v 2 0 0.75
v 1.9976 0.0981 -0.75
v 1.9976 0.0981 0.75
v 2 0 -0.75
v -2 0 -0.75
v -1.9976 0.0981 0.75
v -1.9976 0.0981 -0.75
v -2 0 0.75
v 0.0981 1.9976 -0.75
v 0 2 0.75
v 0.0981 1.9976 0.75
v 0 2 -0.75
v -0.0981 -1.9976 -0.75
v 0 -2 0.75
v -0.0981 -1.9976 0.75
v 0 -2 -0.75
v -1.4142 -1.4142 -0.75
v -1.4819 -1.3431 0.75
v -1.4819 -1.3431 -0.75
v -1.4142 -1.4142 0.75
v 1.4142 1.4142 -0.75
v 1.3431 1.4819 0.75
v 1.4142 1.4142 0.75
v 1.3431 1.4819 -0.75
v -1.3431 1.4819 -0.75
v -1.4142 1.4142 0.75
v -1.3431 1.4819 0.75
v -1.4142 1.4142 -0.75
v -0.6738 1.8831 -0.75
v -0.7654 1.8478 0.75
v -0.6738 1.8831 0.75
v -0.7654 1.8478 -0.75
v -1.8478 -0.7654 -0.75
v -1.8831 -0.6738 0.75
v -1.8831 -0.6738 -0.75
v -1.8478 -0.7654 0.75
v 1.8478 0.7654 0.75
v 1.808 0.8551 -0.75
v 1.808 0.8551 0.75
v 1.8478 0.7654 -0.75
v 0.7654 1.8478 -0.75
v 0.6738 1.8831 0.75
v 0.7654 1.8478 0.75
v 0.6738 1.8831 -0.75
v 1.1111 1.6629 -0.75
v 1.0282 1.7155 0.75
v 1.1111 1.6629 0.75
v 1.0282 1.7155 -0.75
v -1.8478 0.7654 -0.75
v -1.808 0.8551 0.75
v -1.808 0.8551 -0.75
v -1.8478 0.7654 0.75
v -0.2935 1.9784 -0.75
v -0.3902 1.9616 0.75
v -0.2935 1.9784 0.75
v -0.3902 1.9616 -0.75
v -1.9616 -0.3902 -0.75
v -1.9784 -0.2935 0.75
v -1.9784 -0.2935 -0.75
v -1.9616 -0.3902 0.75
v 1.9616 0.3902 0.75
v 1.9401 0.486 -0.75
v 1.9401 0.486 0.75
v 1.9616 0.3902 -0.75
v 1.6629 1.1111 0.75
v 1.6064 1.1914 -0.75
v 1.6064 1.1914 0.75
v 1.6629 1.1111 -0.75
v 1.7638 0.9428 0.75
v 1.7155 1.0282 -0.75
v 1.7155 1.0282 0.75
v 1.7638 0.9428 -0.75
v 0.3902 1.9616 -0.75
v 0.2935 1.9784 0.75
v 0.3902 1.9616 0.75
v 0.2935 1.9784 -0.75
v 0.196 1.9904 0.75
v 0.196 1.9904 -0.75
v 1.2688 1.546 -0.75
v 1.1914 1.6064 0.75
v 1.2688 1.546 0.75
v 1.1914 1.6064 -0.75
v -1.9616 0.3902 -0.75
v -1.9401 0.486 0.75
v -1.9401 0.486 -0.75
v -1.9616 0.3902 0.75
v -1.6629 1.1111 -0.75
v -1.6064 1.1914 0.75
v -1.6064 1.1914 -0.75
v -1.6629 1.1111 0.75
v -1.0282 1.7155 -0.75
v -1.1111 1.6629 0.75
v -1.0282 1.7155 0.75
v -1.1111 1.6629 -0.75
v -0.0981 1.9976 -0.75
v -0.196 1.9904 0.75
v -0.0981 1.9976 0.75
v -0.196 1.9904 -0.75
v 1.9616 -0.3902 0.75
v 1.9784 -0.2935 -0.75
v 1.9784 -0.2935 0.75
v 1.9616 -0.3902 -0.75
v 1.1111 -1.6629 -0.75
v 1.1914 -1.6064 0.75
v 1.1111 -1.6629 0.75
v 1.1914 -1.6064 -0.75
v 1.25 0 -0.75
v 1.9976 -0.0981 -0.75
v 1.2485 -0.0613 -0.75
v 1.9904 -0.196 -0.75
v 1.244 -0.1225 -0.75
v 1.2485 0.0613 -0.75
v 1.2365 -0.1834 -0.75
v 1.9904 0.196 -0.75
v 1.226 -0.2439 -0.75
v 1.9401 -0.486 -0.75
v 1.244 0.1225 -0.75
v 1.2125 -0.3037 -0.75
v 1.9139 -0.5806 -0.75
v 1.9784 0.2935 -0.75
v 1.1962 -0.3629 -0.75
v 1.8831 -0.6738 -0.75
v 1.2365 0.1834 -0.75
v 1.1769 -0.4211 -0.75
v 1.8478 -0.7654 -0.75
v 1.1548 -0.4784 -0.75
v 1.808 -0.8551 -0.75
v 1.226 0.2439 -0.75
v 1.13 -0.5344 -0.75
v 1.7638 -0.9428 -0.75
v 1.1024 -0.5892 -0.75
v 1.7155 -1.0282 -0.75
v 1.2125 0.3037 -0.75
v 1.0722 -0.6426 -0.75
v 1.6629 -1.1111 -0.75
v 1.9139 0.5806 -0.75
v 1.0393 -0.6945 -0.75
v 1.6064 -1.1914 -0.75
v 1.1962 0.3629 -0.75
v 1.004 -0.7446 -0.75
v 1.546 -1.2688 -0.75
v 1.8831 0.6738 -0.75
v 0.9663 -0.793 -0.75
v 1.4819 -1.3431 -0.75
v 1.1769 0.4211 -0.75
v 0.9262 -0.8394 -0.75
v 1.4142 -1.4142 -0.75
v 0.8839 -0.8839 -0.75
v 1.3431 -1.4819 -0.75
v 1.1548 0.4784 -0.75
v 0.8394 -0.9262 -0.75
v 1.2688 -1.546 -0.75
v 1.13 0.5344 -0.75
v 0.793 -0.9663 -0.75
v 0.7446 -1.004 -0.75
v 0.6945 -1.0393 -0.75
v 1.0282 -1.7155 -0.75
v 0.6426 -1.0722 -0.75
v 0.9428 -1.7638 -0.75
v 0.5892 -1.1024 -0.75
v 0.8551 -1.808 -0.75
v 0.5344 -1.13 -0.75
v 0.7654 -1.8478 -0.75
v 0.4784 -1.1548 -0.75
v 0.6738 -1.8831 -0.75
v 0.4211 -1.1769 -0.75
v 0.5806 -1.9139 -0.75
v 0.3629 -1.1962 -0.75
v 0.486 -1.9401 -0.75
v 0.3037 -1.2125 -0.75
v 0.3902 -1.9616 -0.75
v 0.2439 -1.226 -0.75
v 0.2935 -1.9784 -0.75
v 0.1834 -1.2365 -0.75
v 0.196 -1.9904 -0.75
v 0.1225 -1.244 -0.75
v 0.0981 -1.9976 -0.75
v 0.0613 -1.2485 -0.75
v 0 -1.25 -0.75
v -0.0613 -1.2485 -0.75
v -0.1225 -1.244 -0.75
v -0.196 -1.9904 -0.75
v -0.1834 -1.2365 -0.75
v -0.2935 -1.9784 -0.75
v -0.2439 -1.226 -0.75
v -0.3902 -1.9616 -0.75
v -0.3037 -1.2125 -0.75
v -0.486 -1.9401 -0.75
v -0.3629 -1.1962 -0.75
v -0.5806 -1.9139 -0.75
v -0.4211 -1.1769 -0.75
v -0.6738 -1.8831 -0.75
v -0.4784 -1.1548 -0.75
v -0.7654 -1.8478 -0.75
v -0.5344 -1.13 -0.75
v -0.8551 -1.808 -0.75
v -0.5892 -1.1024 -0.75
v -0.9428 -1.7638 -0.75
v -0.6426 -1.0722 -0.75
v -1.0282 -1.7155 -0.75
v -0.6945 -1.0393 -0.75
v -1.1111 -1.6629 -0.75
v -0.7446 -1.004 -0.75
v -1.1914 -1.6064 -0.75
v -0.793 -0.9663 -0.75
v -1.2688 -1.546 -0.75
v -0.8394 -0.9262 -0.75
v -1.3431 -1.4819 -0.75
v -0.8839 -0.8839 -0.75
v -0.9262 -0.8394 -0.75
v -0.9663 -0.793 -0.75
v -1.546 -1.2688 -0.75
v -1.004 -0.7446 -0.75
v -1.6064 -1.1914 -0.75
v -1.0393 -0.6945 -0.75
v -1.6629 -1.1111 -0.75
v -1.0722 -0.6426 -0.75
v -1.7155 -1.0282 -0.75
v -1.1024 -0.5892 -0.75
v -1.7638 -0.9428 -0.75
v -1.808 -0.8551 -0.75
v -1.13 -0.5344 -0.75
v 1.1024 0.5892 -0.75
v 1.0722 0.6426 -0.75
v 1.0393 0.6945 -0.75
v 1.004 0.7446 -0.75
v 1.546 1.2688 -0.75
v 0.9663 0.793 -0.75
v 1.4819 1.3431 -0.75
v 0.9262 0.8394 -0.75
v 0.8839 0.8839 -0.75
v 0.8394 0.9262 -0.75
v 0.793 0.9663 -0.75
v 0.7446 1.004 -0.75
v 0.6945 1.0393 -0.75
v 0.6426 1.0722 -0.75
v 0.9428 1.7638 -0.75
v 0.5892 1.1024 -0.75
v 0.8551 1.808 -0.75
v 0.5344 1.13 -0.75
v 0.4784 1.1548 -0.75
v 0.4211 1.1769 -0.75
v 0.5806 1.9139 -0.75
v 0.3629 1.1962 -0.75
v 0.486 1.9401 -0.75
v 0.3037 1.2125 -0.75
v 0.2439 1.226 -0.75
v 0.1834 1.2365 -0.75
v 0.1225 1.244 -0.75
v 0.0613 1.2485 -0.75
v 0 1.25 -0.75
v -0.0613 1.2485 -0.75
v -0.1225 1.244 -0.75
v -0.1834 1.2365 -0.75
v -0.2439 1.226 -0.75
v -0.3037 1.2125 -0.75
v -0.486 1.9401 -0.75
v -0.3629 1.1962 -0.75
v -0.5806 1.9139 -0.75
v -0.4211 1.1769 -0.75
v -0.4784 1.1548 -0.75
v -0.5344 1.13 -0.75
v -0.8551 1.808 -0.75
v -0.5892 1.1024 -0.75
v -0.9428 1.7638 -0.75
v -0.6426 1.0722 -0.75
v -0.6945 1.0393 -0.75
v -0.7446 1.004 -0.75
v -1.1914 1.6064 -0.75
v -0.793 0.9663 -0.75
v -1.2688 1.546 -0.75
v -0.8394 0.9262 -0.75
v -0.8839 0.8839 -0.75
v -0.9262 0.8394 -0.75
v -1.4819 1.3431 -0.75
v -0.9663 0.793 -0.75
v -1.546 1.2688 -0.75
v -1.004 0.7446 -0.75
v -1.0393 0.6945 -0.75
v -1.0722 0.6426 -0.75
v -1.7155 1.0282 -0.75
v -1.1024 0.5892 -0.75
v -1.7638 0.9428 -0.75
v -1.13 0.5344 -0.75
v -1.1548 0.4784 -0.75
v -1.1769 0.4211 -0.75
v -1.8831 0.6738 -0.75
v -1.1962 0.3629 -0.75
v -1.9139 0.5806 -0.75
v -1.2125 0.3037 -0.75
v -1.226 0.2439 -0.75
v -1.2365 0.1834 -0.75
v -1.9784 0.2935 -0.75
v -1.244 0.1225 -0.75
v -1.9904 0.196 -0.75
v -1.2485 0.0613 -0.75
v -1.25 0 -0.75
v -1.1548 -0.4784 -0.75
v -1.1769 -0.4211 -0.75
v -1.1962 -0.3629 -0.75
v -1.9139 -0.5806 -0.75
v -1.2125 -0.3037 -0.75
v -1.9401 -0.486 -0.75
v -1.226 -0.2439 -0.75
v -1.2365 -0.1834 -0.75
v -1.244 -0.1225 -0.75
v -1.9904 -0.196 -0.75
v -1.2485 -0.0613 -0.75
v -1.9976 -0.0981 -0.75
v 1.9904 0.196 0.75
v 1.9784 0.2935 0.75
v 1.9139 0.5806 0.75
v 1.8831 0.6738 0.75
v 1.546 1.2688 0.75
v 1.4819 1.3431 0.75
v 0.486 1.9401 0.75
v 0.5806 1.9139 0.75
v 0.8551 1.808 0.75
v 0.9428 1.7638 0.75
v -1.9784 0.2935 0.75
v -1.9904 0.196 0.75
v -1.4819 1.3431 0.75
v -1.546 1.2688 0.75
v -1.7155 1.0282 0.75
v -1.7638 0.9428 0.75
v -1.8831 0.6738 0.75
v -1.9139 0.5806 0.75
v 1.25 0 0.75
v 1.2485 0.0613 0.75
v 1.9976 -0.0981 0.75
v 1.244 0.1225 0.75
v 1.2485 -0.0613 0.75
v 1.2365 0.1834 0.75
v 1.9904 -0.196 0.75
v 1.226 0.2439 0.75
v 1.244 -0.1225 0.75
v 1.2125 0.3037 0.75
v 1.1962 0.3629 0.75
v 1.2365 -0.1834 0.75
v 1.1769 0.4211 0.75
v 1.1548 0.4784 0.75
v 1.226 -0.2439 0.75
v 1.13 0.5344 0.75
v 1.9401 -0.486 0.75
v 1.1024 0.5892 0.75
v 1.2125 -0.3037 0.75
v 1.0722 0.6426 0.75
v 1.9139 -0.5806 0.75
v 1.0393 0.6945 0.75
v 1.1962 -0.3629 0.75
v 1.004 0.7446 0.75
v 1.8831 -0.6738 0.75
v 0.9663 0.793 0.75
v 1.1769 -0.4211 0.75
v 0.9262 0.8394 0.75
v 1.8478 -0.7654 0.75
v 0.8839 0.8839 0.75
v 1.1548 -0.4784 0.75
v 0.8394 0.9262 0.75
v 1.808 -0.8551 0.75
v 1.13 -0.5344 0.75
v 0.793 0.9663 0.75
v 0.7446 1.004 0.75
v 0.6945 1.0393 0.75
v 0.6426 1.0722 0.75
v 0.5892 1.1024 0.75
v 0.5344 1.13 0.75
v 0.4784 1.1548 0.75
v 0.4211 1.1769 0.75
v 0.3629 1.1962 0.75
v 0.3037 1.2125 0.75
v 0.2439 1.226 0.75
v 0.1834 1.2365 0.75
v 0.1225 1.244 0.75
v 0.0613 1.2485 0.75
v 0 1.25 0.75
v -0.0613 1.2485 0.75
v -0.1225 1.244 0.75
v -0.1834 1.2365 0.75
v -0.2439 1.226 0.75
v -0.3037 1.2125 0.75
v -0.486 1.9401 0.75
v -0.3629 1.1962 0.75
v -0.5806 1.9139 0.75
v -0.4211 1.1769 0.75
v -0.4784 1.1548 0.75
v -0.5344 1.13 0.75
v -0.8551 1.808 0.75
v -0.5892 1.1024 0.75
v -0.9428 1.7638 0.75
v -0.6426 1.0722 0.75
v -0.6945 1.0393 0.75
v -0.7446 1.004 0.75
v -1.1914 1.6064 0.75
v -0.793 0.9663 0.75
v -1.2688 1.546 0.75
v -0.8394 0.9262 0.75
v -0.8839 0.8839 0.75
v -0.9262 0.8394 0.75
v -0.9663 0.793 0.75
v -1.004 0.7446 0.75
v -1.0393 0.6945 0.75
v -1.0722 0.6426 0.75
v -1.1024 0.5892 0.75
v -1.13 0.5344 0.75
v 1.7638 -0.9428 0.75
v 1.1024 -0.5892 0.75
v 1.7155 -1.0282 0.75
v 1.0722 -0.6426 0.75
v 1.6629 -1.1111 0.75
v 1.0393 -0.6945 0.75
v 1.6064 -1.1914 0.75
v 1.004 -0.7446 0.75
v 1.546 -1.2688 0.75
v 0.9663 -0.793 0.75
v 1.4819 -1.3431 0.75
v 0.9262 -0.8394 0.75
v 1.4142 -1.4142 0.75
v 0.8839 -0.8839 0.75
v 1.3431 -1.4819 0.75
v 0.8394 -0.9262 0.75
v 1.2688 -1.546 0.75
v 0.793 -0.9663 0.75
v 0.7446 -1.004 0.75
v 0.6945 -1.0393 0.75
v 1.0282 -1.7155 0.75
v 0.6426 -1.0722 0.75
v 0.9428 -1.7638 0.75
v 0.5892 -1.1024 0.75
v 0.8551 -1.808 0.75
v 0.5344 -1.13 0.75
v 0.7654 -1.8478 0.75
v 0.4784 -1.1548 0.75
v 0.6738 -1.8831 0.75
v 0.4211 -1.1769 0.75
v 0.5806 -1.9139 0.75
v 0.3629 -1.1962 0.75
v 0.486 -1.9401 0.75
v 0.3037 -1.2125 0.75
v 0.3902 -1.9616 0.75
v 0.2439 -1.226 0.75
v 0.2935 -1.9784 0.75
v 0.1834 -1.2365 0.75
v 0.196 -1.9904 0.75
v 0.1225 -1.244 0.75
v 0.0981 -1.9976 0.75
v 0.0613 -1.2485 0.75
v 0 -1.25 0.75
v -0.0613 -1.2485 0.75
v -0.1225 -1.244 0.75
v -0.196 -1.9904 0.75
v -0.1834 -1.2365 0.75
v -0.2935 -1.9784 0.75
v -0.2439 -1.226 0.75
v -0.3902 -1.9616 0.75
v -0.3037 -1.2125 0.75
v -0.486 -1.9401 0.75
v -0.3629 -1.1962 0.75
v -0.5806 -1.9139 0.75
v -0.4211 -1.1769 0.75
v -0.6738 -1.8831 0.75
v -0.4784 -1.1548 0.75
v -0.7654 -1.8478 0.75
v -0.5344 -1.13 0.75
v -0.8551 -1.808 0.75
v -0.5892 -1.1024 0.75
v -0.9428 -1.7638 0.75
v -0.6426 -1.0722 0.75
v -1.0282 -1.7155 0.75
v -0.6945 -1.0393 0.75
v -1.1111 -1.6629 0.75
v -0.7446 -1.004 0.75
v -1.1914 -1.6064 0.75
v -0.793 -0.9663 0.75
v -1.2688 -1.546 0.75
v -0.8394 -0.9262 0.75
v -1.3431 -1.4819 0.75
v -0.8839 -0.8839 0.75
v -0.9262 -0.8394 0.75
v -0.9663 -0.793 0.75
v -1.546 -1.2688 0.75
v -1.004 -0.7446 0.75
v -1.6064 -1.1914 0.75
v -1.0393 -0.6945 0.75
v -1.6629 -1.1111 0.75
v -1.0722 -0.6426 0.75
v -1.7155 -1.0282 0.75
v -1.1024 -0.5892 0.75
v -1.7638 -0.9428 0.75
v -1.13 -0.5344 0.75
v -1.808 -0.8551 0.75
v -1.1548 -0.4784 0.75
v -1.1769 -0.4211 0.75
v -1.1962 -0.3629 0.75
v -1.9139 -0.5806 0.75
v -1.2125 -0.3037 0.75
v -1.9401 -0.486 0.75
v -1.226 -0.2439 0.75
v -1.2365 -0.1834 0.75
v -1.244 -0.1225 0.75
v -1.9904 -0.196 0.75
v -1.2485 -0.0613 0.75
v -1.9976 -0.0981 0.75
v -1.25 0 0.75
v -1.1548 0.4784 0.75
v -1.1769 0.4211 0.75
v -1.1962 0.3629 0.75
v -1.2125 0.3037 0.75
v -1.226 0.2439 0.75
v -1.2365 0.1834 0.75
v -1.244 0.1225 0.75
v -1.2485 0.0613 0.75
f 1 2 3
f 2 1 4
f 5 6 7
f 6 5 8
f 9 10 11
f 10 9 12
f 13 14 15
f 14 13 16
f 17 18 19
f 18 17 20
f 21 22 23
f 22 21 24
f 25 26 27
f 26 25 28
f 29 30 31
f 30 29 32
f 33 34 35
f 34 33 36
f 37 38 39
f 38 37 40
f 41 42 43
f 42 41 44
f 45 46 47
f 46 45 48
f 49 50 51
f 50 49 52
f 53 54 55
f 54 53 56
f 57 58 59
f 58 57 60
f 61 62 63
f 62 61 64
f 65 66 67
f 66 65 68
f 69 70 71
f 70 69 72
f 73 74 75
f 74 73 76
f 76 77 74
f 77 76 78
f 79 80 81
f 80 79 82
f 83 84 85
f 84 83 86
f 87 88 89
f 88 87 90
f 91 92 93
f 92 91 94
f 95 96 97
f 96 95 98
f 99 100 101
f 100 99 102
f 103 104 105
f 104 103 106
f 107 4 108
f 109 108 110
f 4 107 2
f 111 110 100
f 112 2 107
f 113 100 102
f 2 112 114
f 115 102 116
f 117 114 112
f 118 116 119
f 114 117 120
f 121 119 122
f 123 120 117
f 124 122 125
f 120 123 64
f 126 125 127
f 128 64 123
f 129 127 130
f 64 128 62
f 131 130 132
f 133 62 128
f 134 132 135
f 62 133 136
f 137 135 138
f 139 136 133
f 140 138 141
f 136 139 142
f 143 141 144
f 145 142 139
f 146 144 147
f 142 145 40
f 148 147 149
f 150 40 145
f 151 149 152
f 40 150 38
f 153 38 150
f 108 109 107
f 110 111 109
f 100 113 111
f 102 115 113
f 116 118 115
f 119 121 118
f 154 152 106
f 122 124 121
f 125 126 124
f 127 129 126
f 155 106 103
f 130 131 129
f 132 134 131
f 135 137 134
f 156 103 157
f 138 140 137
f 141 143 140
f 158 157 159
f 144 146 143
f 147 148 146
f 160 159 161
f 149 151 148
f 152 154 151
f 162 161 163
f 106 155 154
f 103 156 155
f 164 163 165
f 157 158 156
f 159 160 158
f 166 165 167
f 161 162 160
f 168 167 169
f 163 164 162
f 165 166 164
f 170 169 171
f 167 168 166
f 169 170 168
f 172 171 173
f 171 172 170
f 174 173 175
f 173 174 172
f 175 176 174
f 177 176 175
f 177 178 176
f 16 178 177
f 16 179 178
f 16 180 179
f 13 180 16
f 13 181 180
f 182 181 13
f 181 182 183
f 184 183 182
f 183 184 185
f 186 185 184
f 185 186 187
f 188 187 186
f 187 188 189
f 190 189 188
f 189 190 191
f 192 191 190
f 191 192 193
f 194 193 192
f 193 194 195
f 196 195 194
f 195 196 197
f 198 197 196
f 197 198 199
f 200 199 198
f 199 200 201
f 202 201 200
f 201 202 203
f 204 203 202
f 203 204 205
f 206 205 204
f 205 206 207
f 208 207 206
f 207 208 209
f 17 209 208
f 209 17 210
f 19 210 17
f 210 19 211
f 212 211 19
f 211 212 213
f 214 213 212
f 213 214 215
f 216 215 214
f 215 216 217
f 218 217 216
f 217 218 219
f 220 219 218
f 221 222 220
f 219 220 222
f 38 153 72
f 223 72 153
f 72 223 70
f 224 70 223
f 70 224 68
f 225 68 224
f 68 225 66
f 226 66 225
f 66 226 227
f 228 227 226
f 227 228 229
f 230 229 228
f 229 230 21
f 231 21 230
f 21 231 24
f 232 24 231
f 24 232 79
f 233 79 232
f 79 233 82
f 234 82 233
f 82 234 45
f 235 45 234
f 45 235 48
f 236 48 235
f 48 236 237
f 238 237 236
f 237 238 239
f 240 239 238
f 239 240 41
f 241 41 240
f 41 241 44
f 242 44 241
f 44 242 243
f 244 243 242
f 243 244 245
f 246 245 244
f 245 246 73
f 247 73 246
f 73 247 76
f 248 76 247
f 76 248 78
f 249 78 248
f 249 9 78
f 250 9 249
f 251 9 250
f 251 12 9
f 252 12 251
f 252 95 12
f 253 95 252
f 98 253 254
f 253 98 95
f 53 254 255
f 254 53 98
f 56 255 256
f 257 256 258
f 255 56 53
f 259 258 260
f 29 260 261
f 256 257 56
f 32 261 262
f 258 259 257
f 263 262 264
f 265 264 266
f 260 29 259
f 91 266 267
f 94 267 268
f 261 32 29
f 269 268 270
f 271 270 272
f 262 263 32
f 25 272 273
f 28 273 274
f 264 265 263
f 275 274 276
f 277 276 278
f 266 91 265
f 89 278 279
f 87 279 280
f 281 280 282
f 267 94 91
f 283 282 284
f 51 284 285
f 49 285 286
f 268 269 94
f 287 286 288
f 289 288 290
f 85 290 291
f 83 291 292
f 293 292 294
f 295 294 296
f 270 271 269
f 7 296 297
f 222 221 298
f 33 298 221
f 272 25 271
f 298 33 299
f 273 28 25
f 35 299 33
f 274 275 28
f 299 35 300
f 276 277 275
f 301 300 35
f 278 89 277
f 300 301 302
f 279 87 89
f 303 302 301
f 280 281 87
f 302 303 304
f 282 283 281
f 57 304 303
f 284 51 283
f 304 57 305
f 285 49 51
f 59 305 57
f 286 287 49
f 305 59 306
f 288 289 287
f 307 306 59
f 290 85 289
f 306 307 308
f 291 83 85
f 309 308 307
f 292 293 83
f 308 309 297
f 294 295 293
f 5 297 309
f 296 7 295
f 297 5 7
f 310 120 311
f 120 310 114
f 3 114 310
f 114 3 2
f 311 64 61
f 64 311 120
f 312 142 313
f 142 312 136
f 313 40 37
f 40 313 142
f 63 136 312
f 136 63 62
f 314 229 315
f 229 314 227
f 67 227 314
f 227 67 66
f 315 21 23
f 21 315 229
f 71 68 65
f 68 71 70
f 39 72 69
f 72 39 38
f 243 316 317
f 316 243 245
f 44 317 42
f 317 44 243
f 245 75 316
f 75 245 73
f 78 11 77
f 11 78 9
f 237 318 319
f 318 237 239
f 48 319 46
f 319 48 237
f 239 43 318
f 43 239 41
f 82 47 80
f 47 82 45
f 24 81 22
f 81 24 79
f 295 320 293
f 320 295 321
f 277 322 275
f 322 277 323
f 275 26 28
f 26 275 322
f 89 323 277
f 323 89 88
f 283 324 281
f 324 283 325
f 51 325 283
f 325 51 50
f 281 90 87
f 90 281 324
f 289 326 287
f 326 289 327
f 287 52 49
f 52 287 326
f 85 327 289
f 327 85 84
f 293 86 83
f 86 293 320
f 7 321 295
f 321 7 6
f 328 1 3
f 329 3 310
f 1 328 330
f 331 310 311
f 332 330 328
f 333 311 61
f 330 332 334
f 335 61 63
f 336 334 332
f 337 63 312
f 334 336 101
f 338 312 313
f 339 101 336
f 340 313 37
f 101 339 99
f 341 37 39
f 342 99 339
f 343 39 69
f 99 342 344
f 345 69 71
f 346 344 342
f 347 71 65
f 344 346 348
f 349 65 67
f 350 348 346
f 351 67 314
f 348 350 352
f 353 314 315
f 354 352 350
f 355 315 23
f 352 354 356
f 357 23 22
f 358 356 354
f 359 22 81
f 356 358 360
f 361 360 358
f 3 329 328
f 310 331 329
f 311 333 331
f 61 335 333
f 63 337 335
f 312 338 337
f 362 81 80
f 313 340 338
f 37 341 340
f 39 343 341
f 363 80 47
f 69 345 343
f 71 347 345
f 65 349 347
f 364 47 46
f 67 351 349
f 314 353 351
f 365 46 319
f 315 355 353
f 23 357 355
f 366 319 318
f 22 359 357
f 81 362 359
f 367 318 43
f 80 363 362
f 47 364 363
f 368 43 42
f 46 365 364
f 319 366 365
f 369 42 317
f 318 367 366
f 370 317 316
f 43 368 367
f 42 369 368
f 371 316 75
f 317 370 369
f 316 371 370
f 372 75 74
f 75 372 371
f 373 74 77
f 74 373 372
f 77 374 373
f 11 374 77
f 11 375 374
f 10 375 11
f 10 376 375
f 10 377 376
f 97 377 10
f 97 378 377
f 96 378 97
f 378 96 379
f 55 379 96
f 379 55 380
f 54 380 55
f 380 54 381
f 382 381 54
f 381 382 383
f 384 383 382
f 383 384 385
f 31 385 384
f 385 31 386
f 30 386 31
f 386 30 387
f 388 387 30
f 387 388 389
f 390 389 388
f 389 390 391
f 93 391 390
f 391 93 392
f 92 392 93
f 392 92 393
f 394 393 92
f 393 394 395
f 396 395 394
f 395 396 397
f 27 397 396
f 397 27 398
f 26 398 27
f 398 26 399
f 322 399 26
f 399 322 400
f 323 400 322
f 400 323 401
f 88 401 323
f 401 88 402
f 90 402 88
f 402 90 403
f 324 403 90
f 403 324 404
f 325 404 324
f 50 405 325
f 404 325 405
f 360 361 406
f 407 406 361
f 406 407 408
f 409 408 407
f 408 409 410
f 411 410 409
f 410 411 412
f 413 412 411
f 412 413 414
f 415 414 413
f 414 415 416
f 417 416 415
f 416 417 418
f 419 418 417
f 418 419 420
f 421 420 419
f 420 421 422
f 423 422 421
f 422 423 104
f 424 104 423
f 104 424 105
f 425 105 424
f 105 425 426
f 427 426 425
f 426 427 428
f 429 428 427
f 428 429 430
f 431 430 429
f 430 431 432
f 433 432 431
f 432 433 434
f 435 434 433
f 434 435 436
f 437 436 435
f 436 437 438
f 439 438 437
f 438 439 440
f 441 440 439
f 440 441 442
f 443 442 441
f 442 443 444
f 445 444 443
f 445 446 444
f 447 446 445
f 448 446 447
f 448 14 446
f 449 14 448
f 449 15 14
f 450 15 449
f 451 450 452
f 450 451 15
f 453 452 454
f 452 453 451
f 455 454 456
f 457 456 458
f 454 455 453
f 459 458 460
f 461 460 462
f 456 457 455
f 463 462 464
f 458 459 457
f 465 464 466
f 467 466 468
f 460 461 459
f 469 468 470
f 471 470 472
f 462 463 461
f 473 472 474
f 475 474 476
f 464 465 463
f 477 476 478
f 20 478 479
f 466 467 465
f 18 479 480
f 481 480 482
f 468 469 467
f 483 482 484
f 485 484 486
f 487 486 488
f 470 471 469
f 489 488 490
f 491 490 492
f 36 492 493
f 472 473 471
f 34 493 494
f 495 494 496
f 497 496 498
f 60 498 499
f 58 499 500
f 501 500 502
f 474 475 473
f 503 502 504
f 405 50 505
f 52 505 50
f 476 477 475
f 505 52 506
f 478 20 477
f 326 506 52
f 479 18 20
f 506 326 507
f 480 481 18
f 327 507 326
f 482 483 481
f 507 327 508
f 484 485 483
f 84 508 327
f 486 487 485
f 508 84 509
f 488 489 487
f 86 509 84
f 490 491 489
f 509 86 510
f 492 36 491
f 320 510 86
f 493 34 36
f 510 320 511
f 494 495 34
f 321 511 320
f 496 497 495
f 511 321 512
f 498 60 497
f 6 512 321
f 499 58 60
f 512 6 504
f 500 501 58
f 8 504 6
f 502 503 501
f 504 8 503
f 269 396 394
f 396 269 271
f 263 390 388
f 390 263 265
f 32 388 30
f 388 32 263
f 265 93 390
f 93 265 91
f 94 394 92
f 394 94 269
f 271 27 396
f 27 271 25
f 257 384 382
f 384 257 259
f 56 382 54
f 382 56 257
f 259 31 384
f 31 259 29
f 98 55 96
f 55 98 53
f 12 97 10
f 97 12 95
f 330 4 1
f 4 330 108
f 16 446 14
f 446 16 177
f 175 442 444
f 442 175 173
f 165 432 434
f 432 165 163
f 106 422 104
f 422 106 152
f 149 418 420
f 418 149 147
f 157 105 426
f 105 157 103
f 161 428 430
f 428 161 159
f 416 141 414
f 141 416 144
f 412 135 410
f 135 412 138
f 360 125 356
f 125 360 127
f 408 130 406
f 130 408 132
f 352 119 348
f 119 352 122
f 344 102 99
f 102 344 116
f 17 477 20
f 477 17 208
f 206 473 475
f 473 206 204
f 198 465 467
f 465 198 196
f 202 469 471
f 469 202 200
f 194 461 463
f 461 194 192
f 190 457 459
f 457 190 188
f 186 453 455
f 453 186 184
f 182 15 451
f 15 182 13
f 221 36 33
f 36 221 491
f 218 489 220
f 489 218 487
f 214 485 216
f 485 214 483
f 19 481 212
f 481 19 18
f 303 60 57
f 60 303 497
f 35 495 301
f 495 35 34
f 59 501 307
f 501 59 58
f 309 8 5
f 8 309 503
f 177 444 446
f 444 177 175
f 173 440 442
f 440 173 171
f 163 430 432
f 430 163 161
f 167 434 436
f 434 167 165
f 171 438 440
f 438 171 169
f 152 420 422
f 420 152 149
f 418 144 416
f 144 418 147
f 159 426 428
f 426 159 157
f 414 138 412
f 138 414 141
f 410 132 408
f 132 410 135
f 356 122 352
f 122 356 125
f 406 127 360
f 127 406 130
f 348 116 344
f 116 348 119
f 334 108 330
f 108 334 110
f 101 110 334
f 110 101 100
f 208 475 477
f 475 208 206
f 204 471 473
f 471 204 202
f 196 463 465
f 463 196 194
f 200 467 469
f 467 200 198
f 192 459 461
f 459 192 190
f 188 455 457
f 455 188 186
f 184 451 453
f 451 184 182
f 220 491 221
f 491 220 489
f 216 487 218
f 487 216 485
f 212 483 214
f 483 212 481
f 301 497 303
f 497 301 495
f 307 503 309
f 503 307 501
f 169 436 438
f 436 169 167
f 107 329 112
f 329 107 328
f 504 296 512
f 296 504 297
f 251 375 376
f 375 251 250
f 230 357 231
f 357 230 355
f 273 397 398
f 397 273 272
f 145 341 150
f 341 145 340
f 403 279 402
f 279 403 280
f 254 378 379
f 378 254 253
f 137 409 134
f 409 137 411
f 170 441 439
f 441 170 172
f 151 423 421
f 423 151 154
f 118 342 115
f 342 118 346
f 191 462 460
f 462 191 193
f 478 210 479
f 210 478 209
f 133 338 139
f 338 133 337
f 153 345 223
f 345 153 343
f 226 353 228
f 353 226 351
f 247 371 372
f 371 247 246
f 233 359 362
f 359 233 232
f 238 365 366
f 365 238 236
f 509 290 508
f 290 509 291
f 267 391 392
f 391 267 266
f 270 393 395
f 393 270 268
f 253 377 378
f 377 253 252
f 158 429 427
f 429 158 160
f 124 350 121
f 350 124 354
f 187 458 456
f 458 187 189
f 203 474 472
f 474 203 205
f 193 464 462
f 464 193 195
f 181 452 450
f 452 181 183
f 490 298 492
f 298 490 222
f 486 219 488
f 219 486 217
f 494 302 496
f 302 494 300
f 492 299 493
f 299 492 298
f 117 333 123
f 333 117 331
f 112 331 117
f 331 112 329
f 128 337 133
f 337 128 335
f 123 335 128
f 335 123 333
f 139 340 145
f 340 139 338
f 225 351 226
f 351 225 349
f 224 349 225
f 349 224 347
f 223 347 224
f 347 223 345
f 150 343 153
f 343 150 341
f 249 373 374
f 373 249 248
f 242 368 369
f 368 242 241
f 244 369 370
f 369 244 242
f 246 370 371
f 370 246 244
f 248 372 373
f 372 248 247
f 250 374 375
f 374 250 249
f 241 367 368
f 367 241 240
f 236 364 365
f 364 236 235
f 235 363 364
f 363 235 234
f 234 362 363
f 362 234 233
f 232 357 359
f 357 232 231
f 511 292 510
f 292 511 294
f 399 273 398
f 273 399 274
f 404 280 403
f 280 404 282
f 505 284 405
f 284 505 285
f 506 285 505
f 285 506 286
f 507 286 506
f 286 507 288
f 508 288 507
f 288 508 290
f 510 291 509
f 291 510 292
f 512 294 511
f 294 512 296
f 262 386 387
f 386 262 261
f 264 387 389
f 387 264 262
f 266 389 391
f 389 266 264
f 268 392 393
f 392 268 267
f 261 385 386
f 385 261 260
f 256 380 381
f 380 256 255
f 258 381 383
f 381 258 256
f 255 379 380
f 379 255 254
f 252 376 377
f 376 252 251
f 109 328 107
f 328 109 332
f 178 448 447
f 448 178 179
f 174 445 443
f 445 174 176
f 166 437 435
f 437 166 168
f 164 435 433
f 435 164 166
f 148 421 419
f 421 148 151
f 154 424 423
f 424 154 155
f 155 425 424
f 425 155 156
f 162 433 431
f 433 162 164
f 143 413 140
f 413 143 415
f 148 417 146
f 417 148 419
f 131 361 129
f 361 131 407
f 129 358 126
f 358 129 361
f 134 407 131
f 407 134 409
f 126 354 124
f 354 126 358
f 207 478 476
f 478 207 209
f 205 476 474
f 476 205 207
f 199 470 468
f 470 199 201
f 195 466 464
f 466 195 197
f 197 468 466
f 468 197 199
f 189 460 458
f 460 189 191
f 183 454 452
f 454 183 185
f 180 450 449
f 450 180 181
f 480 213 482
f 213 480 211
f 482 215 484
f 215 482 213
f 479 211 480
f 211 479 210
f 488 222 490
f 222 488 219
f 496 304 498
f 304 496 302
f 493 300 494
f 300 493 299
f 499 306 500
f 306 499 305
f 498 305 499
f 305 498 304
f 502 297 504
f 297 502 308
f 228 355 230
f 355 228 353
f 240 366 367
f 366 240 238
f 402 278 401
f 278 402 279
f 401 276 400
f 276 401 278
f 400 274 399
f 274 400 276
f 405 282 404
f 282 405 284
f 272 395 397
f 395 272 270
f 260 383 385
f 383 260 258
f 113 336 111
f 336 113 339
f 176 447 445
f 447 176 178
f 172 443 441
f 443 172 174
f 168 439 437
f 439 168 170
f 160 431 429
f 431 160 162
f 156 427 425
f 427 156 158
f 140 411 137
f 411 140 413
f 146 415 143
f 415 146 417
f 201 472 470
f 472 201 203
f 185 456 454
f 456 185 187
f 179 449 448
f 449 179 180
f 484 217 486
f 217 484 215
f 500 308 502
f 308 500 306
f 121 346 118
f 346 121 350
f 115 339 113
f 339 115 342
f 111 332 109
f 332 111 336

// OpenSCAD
$fn = 128;

module arruela(){
    difference(){
        cylinder(h=1.5,d=4,center=true);
        cylinder(h=2,d=2.5,center=true);
    }
}

arruela();
